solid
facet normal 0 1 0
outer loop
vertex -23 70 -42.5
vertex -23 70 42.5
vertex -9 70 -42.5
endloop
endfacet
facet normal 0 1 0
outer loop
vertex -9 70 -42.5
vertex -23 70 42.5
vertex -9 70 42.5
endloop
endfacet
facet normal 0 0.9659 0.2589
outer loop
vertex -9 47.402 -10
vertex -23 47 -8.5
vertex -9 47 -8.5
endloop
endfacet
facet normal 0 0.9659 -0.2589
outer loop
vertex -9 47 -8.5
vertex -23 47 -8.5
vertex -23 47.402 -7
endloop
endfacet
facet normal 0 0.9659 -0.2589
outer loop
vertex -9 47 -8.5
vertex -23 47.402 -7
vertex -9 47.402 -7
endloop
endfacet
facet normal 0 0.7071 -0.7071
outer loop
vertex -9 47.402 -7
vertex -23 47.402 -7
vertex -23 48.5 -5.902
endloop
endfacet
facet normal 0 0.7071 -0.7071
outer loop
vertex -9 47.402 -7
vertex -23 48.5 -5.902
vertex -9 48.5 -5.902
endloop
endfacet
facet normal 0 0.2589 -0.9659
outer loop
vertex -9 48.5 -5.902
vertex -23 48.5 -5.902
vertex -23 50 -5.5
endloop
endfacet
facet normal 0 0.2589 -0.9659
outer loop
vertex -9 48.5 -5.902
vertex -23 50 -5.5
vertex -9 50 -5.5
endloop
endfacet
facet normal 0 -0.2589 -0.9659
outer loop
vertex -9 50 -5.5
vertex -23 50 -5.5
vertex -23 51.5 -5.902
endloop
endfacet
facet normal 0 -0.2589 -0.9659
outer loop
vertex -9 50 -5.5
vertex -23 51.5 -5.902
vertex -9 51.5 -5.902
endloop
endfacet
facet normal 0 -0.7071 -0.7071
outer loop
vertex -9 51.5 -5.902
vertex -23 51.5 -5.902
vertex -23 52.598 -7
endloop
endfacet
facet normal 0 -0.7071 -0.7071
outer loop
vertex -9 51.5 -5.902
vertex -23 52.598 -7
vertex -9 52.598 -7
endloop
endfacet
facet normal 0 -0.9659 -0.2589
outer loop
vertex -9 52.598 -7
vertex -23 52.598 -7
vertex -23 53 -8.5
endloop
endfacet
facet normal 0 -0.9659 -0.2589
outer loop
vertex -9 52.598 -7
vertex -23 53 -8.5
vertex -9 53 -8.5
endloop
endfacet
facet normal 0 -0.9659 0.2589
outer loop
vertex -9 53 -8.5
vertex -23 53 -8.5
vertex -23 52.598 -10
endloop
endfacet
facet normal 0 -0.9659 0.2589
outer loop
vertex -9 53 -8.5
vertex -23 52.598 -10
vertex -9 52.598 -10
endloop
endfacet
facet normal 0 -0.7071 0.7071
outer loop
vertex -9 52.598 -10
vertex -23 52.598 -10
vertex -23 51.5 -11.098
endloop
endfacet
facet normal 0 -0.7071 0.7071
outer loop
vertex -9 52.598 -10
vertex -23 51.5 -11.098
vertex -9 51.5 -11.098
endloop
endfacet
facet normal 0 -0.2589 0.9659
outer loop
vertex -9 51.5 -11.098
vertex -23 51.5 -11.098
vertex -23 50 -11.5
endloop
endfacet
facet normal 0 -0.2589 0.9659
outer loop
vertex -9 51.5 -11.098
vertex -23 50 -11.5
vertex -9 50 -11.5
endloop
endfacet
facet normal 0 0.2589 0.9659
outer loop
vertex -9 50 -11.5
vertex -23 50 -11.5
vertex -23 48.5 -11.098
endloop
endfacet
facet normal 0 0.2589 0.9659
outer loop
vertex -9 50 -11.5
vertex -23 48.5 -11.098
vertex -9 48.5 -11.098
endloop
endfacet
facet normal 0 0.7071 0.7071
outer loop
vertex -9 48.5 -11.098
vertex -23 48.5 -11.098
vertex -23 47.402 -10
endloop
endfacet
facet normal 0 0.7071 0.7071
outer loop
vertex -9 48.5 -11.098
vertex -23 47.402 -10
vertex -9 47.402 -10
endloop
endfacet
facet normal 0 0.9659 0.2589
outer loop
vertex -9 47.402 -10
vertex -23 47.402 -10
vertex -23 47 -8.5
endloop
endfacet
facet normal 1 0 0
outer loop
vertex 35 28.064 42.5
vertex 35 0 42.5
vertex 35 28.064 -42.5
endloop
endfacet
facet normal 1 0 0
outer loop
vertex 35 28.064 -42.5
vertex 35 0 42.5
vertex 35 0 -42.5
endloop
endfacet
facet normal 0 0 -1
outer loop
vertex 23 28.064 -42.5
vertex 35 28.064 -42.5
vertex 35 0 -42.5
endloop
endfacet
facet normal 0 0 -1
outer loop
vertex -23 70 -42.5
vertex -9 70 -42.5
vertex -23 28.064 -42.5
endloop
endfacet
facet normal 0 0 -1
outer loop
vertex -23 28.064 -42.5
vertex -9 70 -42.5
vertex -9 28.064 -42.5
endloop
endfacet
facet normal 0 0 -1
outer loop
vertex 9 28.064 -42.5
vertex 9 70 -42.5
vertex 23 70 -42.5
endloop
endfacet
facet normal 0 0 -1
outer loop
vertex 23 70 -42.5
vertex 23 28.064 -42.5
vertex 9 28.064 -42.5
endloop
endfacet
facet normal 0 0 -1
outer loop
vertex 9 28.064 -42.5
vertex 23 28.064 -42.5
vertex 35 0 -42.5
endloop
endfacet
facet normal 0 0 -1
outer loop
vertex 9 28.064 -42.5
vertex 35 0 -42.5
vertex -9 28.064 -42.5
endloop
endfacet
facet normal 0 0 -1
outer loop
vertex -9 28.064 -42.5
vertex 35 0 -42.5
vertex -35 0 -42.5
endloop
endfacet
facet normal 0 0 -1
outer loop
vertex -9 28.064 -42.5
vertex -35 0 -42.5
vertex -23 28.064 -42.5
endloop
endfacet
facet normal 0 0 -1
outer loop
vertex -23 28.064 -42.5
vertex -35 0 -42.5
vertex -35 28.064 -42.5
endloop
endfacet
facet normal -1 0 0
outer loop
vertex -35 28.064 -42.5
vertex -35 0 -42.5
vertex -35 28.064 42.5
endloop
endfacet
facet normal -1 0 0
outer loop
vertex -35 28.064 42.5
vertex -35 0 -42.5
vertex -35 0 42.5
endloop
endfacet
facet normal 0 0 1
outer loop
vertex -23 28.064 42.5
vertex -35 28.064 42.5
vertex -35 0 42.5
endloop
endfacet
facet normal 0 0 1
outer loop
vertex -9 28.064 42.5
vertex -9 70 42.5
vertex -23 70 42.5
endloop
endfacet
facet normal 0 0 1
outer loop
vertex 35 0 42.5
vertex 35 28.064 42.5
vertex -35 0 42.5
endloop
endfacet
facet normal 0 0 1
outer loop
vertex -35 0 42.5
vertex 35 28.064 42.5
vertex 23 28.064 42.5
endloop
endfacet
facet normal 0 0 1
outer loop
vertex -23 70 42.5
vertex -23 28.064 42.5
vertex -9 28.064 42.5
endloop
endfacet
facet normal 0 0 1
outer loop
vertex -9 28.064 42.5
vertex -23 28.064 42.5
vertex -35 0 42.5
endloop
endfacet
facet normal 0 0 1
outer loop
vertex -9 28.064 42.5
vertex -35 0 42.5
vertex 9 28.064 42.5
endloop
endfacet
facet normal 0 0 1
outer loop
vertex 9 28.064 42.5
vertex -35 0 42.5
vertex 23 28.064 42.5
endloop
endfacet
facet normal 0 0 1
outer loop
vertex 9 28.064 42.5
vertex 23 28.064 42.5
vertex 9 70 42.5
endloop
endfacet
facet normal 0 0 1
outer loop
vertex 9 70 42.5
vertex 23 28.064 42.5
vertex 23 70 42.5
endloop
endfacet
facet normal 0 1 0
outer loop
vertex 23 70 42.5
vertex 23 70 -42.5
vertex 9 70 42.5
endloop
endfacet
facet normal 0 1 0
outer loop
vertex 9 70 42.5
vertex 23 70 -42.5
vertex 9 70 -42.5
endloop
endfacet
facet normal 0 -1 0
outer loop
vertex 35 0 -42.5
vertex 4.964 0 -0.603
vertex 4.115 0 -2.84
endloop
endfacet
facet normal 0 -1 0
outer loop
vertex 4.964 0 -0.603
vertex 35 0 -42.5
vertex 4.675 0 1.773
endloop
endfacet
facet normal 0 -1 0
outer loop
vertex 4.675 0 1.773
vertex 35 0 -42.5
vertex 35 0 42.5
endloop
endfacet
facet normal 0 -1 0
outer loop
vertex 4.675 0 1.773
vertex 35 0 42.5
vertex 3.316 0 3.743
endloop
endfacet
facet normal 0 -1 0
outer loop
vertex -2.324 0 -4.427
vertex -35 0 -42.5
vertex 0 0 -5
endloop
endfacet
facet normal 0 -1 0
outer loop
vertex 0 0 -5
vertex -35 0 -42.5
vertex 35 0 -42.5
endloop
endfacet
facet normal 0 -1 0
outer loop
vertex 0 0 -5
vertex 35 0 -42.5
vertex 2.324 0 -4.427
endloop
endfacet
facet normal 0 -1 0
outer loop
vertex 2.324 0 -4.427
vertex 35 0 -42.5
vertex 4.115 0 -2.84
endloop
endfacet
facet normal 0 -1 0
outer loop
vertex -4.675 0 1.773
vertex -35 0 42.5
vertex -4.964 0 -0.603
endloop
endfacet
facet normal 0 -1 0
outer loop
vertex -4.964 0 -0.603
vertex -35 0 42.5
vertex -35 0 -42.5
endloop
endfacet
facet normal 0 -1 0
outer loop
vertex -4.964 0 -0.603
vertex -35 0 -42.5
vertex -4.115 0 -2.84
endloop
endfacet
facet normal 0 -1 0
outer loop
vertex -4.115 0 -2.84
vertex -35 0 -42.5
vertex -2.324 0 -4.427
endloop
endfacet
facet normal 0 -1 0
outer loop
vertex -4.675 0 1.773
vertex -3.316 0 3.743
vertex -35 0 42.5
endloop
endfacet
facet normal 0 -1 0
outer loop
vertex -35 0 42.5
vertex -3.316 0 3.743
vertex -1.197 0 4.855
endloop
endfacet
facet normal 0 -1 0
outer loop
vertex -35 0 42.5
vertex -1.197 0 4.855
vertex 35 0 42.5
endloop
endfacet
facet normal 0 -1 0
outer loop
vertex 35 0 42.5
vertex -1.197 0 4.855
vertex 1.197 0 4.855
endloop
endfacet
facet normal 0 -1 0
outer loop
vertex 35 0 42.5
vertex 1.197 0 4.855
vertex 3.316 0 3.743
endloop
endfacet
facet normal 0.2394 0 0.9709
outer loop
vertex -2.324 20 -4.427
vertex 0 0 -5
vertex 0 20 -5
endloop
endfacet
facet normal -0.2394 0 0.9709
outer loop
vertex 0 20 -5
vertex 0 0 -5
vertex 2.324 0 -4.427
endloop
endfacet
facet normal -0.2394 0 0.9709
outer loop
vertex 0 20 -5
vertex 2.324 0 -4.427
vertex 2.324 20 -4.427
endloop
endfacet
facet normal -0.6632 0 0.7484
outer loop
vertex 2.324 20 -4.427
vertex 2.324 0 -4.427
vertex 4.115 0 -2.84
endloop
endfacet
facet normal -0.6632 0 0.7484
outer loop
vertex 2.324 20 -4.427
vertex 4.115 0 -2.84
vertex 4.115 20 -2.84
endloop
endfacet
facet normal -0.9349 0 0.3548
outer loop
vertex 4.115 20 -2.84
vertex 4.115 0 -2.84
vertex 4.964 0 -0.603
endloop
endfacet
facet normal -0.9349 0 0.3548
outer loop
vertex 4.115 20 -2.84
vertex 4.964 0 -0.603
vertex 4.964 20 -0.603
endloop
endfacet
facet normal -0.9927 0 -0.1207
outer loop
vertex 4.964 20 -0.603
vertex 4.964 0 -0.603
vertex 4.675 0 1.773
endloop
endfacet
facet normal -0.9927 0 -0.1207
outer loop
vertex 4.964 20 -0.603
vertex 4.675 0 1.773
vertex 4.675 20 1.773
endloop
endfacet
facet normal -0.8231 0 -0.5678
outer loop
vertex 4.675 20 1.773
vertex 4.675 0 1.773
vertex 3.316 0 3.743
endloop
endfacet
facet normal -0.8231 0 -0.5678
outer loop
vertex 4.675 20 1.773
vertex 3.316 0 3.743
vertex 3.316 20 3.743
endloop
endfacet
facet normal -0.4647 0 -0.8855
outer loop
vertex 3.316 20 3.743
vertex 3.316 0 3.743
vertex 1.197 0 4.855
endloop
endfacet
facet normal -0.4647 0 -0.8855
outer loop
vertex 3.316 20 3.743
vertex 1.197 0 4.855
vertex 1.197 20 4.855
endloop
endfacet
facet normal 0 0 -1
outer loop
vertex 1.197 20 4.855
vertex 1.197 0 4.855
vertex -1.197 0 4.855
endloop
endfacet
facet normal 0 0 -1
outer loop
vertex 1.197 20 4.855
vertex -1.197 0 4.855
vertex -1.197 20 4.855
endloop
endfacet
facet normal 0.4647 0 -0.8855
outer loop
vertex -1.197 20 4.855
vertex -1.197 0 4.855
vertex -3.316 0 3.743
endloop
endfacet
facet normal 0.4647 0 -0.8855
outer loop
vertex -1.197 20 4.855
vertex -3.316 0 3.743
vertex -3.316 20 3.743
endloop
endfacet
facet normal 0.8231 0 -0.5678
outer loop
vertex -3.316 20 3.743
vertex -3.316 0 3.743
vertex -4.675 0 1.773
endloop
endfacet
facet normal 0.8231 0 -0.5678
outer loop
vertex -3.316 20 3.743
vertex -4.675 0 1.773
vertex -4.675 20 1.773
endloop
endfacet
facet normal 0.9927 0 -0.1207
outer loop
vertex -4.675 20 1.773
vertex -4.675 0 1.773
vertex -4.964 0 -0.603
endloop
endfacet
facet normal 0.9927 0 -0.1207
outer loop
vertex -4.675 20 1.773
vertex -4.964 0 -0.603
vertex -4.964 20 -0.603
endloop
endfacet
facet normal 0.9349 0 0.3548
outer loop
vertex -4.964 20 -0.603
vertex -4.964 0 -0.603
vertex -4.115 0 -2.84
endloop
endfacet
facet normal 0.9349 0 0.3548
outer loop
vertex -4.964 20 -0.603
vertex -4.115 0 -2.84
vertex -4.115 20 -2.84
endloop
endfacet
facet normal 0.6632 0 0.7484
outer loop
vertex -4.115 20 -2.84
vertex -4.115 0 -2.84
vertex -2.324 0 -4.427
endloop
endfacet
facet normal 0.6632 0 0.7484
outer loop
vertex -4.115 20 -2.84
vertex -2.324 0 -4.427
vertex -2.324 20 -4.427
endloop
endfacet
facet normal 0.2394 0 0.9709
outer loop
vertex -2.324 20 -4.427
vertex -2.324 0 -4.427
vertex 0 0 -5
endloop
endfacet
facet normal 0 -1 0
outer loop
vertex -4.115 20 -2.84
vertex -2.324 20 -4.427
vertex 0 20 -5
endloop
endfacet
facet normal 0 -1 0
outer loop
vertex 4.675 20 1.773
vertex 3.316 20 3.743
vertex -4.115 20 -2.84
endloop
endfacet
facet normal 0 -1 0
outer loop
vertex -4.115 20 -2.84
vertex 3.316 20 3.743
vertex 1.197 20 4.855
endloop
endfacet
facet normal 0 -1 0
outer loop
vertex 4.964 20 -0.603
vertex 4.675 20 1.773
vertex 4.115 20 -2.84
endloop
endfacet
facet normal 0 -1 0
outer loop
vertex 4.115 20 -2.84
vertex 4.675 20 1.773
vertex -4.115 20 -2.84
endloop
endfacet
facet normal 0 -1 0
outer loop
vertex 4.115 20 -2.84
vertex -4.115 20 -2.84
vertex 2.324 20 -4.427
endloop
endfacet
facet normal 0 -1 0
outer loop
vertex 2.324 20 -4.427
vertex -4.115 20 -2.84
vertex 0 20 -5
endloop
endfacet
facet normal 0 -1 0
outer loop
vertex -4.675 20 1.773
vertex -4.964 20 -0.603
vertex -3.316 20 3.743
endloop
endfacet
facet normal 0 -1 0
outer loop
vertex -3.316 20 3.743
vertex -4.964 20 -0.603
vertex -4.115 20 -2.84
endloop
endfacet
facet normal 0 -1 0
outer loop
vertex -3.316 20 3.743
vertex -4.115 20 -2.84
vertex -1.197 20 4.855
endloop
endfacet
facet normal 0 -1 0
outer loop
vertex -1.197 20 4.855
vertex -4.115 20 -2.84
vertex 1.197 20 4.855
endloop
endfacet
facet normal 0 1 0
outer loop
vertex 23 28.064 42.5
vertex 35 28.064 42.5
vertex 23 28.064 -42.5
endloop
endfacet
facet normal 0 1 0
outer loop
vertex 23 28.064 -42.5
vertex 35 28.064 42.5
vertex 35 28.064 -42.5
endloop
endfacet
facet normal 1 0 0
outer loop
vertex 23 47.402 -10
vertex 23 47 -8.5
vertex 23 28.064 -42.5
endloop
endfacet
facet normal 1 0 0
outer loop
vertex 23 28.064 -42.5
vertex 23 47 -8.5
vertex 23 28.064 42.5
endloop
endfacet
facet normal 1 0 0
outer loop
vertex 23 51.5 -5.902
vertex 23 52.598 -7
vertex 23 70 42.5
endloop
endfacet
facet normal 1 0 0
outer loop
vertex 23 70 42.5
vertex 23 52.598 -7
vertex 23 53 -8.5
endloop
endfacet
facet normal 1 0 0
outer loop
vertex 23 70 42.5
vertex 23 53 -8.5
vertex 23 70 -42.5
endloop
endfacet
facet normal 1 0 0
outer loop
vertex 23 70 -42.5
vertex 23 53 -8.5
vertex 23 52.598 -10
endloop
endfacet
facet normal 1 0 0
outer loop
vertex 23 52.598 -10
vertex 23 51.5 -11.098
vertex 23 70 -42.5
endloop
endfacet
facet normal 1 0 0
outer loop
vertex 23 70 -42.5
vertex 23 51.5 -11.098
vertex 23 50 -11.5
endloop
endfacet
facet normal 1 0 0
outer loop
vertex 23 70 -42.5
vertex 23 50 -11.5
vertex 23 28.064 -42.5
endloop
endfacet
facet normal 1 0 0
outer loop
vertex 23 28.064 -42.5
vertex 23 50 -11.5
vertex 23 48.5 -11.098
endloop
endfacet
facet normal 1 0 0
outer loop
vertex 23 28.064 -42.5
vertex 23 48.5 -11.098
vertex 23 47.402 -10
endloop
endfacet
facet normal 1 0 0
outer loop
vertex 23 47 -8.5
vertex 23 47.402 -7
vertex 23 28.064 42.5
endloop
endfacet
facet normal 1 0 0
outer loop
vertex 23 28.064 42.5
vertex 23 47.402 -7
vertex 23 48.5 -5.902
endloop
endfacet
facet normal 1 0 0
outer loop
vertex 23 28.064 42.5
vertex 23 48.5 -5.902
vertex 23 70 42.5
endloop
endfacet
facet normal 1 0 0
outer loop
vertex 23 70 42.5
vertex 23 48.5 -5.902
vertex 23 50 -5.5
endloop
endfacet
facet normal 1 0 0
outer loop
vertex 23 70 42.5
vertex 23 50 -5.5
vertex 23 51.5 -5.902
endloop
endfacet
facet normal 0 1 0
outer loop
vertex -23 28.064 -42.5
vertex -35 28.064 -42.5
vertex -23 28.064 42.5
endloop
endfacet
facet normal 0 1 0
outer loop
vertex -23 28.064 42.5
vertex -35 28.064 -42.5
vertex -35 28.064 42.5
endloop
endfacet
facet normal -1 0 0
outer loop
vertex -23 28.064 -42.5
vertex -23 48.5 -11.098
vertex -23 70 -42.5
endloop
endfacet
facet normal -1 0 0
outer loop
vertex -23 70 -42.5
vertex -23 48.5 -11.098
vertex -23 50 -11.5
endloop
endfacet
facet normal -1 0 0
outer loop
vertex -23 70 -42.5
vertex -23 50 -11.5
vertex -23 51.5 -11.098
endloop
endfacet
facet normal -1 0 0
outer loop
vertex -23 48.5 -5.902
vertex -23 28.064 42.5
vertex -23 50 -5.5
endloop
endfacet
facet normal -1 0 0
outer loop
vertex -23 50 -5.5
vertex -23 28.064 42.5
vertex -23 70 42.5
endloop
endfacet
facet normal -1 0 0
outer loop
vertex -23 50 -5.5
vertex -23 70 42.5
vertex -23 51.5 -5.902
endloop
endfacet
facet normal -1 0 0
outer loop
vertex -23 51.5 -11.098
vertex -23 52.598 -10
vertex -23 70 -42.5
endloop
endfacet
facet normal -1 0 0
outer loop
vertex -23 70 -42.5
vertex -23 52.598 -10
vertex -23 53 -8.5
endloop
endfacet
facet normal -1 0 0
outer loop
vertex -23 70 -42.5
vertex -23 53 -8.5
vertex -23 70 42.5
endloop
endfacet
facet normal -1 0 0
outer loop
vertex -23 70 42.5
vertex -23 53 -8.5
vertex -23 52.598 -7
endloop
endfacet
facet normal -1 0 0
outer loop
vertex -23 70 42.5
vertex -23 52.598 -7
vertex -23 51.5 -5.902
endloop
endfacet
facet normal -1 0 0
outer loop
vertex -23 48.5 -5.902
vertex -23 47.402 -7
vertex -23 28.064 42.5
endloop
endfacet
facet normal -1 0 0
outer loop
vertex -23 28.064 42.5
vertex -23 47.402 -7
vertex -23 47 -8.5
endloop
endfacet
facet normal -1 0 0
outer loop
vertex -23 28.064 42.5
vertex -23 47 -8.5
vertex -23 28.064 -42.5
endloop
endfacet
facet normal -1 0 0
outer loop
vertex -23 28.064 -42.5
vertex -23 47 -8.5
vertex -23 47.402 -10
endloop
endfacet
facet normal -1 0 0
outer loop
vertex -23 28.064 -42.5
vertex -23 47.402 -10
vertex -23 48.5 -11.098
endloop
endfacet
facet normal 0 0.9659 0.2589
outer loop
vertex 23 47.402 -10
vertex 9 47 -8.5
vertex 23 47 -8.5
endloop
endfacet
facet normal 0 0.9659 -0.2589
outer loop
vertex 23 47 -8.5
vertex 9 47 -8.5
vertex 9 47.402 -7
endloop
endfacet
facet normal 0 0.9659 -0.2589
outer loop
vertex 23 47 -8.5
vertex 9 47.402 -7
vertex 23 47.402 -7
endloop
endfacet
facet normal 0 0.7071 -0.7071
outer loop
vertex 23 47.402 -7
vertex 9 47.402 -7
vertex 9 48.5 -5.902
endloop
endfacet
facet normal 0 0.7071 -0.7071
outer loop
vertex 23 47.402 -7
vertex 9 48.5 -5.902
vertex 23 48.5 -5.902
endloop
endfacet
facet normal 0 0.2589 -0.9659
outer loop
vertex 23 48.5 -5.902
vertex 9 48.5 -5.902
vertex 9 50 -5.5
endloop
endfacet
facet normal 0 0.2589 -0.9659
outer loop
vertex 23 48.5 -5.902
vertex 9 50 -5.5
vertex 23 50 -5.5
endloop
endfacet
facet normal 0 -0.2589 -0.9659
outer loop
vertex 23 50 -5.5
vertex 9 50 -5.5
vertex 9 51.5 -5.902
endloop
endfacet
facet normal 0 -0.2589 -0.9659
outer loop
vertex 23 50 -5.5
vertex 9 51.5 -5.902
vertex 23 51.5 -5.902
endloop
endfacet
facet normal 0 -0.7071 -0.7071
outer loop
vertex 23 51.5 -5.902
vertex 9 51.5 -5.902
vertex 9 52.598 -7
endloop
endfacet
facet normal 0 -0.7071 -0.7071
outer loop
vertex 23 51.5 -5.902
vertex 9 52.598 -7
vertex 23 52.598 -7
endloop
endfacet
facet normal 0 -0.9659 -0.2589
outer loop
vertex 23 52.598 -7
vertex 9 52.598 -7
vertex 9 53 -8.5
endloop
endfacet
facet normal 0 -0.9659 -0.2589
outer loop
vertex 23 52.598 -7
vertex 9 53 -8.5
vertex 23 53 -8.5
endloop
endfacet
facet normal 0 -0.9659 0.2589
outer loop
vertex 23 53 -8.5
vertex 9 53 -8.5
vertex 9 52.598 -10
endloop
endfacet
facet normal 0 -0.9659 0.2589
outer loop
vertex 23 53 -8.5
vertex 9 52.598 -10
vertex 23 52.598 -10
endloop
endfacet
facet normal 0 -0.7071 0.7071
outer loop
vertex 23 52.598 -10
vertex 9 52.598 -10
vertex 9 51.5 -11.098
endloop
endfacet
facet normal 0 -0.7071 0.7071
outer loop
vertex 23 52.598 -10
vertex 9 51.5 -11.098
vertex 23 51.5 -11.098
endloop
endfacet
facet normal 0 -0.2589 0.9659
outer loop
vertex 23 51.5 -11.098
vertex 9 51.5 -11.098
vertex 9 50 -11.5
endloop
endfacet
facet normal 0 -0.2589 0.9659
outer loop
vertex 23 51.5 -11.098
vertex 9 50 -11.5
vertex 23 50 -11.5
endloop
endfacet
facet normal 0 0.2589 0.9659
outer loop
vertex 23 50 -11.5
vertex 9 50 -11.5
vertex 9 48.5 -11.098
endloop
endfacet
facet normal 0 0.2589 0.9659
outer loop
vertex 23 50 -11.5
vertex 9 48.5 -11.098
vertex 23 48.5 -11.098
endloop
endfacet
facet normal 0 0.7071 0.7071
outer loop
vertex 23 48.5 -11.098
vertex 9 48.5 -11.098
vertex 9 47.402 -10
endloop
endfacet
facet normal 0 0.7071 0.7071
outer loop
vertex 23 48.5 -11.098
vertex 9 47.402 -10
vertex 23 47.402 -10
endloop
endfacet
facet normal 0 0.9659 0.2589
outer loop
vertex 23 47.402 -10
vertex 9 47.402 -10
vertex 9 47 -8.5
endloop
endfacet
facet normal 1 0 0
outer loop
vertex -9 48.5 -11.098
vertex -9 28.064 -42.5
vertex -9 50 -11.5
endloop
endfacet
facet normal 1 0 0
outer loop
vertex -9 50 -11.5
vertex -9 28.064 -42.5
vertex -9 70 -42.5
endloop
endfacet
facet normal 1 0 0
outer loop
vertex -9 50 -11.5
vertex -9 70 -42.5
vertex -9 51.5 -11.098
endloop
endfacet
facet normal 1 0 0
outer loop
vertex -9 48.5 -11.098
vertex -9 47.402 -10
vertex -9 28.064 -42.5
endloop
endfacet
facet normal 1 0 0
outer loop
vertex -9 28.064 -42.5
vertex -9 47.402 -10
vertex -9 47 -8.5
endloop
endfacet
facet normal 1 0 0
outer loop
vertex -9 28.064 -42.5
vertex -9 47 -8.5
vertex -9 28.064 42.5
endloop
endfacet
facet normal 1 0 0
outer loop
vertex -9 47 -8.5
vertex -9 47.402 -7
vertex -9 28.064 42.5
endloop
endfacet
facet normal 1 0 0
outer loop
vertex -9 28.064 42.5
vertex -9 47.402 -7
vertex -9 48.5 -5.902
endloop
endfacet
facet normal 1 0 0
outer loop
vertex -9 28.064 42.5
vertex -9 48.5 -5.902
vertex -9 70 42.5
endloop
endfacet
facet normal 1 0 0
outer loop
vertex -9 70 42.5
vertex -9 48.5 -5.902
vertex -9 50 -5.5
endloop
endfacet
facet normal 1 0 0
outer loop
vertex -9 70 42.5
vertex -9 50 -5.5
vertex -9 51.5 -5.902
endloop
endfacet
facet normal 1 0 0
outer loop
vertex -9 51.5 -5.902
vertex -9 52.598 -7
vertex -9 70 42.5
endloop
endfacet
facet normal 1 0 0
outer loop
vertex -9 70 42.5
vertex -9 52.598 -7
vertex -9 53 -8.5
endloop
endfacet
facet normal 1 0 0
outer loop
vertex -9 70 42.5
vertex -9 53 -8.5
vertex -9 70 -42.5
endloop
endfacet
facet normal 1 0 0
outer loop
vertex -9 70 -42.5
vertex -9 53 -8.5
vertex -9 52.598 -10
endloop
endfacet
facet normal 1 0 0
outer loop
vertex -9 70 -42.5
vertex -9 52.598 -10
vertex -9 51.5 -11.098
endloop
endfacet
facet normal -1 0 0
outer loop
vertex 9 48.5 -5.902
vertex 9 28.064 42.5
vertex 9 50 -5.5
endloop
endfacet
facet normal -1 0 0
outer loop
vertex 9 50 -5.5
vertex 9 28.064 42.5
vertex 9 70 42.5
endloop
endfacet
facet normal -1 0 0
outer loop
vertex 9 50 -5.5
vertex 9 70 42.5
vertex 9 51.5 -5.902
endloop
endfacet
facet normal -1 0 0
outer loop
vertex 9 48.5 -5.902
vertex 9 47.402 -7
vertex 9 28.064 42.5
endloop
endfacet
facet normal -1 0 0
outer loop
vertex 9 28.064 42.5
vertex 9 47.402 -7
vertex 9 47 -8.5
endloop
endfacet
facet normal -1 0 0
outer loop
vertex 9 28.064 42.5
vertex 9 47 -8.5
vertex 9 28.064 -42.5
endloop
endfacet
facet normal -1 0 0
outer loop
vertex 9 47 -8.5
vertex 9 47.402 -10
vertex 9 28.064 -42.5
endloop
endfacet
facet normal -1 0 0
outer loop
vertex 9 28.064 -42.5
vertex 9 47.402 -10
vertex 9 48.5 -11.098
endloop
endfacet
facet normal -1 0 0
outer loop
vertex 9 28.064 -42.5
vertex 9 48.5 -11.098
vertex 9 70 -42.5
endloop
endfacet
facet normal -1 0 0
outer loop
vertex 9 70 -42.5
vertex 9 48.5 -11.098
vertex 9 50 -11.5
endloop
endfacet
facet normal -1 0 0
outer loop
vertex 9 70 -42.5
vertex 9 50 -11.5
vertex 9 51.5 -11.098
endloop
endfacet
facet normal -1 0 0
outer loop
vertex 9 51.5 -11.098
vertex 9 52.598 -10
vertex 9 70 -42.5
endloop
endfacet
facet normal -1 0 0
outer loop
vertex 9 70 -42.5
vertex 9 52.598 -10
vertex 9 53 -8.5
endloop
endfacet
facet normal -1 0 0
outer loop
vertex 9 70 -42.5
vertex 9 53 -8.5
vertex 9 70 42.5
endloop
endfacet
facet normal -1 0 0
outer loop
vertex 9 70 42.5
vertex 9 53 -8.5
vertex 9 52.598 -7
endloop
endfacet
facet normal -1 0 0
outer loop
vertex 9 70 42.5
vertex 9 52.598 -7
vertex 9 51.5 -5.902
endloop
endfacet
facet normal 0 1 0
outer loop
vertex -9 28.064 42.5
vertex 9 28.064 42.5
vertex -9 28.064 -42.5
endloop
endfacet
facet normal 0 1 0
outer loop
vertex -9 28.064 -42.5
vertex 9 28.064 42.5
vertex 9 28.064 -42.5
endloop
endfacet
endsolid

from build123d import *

# Parameters (mm, degrees)
SKETCH1_W           = 70
SKETCH1_H           = 85
BOSS_EXTRUDE1_DEPTH = 70
SKETCH2_R           = 5
CUT_EXTRUDE1_DEPTH  = 20
SKETCH3_W           = 24.749109438
SKETCH3_H           = 45.30683744
CUT_EXTRUDE2_DEPTH  = 116.542200083
SKETCH4_R           = 3
CUT_EXTRUDE3_DEPTH  = 101.350635275
SKETCH6_W           = 18
SKETCH6_H           = 62.779044911
CUT_EXTRUDE4_DEPTH  = 116.542200083


with BuildPart() as part:
    # Sketch1 → Boss-Extrude1 (new body)
    with BuildSketch(Plane(origin=(0, 0, 0), x_dir=(1, 0, 0), z_dir=(0, 1, 0))):
        Rectangle(SKETCH1_W, SKETCH1_H)
    extrude(amount=BOSS_EXTRUDE1_DEPTH)

    # Sketch2 → Cut-Extrude1 (cut)
    with BuildSketch(Plane.XZ):
        with Locations(Location((0, 0, 0), (0, 0, 270))):
            Circle(SKETCH2_R)
    extrude(amount=-CUT_EXTRUDE1_DEPTH, mode=Mode.SUBTRACT)

    # Sketch3 → Cut-Extrude2 (cut, through all)
    with BuildSketch(Plane(origin=(0, 0, -42.5), x_dir=(-1, 0, 0), z_dir=(0, 0, -1))):
        with Locations((-35.374554719, 50.717680389)):
            Rectangle(SKETCH3_W, SKETCH3_H)
        with Locations((35.374554719, 50.717680389)):
            Rectangle(SKETCH3_W, SKETCH3_H)
    extrude(amount=-CUT_EXTRUDE2_DEPTH, mode=Mode.SUBTRACT)

    # Sketch4 → Cut-Extrude3 (cut, through all)
    with BuildSketch(Plane.ZY.offset(23)):
        with Locations(Location((-8.5, 50, 0), (0, 0, 270))):
            Circle(SKETCH4_R)
    extrude(amount=-CUT_EXTRUDE3_DEPTH, mode=Mode.SUBTRACT)

    # Sketch6 → Cut-Extrude4 (cut, through all)
    with BuildSketch(Plane(origin=(0, 0, -42.5), x_dir=(-1, 0, 0), z_dir=(0, 0, -1))):
        with Locations((0, 59.453784125)):
            Rectangle(SKETCH6_W, SKETCH6_H)
    extrude(amount=-CUT_EXTRUDE4_DEPTH, mode=Mode.SUBTRACT)


solid = part.part
